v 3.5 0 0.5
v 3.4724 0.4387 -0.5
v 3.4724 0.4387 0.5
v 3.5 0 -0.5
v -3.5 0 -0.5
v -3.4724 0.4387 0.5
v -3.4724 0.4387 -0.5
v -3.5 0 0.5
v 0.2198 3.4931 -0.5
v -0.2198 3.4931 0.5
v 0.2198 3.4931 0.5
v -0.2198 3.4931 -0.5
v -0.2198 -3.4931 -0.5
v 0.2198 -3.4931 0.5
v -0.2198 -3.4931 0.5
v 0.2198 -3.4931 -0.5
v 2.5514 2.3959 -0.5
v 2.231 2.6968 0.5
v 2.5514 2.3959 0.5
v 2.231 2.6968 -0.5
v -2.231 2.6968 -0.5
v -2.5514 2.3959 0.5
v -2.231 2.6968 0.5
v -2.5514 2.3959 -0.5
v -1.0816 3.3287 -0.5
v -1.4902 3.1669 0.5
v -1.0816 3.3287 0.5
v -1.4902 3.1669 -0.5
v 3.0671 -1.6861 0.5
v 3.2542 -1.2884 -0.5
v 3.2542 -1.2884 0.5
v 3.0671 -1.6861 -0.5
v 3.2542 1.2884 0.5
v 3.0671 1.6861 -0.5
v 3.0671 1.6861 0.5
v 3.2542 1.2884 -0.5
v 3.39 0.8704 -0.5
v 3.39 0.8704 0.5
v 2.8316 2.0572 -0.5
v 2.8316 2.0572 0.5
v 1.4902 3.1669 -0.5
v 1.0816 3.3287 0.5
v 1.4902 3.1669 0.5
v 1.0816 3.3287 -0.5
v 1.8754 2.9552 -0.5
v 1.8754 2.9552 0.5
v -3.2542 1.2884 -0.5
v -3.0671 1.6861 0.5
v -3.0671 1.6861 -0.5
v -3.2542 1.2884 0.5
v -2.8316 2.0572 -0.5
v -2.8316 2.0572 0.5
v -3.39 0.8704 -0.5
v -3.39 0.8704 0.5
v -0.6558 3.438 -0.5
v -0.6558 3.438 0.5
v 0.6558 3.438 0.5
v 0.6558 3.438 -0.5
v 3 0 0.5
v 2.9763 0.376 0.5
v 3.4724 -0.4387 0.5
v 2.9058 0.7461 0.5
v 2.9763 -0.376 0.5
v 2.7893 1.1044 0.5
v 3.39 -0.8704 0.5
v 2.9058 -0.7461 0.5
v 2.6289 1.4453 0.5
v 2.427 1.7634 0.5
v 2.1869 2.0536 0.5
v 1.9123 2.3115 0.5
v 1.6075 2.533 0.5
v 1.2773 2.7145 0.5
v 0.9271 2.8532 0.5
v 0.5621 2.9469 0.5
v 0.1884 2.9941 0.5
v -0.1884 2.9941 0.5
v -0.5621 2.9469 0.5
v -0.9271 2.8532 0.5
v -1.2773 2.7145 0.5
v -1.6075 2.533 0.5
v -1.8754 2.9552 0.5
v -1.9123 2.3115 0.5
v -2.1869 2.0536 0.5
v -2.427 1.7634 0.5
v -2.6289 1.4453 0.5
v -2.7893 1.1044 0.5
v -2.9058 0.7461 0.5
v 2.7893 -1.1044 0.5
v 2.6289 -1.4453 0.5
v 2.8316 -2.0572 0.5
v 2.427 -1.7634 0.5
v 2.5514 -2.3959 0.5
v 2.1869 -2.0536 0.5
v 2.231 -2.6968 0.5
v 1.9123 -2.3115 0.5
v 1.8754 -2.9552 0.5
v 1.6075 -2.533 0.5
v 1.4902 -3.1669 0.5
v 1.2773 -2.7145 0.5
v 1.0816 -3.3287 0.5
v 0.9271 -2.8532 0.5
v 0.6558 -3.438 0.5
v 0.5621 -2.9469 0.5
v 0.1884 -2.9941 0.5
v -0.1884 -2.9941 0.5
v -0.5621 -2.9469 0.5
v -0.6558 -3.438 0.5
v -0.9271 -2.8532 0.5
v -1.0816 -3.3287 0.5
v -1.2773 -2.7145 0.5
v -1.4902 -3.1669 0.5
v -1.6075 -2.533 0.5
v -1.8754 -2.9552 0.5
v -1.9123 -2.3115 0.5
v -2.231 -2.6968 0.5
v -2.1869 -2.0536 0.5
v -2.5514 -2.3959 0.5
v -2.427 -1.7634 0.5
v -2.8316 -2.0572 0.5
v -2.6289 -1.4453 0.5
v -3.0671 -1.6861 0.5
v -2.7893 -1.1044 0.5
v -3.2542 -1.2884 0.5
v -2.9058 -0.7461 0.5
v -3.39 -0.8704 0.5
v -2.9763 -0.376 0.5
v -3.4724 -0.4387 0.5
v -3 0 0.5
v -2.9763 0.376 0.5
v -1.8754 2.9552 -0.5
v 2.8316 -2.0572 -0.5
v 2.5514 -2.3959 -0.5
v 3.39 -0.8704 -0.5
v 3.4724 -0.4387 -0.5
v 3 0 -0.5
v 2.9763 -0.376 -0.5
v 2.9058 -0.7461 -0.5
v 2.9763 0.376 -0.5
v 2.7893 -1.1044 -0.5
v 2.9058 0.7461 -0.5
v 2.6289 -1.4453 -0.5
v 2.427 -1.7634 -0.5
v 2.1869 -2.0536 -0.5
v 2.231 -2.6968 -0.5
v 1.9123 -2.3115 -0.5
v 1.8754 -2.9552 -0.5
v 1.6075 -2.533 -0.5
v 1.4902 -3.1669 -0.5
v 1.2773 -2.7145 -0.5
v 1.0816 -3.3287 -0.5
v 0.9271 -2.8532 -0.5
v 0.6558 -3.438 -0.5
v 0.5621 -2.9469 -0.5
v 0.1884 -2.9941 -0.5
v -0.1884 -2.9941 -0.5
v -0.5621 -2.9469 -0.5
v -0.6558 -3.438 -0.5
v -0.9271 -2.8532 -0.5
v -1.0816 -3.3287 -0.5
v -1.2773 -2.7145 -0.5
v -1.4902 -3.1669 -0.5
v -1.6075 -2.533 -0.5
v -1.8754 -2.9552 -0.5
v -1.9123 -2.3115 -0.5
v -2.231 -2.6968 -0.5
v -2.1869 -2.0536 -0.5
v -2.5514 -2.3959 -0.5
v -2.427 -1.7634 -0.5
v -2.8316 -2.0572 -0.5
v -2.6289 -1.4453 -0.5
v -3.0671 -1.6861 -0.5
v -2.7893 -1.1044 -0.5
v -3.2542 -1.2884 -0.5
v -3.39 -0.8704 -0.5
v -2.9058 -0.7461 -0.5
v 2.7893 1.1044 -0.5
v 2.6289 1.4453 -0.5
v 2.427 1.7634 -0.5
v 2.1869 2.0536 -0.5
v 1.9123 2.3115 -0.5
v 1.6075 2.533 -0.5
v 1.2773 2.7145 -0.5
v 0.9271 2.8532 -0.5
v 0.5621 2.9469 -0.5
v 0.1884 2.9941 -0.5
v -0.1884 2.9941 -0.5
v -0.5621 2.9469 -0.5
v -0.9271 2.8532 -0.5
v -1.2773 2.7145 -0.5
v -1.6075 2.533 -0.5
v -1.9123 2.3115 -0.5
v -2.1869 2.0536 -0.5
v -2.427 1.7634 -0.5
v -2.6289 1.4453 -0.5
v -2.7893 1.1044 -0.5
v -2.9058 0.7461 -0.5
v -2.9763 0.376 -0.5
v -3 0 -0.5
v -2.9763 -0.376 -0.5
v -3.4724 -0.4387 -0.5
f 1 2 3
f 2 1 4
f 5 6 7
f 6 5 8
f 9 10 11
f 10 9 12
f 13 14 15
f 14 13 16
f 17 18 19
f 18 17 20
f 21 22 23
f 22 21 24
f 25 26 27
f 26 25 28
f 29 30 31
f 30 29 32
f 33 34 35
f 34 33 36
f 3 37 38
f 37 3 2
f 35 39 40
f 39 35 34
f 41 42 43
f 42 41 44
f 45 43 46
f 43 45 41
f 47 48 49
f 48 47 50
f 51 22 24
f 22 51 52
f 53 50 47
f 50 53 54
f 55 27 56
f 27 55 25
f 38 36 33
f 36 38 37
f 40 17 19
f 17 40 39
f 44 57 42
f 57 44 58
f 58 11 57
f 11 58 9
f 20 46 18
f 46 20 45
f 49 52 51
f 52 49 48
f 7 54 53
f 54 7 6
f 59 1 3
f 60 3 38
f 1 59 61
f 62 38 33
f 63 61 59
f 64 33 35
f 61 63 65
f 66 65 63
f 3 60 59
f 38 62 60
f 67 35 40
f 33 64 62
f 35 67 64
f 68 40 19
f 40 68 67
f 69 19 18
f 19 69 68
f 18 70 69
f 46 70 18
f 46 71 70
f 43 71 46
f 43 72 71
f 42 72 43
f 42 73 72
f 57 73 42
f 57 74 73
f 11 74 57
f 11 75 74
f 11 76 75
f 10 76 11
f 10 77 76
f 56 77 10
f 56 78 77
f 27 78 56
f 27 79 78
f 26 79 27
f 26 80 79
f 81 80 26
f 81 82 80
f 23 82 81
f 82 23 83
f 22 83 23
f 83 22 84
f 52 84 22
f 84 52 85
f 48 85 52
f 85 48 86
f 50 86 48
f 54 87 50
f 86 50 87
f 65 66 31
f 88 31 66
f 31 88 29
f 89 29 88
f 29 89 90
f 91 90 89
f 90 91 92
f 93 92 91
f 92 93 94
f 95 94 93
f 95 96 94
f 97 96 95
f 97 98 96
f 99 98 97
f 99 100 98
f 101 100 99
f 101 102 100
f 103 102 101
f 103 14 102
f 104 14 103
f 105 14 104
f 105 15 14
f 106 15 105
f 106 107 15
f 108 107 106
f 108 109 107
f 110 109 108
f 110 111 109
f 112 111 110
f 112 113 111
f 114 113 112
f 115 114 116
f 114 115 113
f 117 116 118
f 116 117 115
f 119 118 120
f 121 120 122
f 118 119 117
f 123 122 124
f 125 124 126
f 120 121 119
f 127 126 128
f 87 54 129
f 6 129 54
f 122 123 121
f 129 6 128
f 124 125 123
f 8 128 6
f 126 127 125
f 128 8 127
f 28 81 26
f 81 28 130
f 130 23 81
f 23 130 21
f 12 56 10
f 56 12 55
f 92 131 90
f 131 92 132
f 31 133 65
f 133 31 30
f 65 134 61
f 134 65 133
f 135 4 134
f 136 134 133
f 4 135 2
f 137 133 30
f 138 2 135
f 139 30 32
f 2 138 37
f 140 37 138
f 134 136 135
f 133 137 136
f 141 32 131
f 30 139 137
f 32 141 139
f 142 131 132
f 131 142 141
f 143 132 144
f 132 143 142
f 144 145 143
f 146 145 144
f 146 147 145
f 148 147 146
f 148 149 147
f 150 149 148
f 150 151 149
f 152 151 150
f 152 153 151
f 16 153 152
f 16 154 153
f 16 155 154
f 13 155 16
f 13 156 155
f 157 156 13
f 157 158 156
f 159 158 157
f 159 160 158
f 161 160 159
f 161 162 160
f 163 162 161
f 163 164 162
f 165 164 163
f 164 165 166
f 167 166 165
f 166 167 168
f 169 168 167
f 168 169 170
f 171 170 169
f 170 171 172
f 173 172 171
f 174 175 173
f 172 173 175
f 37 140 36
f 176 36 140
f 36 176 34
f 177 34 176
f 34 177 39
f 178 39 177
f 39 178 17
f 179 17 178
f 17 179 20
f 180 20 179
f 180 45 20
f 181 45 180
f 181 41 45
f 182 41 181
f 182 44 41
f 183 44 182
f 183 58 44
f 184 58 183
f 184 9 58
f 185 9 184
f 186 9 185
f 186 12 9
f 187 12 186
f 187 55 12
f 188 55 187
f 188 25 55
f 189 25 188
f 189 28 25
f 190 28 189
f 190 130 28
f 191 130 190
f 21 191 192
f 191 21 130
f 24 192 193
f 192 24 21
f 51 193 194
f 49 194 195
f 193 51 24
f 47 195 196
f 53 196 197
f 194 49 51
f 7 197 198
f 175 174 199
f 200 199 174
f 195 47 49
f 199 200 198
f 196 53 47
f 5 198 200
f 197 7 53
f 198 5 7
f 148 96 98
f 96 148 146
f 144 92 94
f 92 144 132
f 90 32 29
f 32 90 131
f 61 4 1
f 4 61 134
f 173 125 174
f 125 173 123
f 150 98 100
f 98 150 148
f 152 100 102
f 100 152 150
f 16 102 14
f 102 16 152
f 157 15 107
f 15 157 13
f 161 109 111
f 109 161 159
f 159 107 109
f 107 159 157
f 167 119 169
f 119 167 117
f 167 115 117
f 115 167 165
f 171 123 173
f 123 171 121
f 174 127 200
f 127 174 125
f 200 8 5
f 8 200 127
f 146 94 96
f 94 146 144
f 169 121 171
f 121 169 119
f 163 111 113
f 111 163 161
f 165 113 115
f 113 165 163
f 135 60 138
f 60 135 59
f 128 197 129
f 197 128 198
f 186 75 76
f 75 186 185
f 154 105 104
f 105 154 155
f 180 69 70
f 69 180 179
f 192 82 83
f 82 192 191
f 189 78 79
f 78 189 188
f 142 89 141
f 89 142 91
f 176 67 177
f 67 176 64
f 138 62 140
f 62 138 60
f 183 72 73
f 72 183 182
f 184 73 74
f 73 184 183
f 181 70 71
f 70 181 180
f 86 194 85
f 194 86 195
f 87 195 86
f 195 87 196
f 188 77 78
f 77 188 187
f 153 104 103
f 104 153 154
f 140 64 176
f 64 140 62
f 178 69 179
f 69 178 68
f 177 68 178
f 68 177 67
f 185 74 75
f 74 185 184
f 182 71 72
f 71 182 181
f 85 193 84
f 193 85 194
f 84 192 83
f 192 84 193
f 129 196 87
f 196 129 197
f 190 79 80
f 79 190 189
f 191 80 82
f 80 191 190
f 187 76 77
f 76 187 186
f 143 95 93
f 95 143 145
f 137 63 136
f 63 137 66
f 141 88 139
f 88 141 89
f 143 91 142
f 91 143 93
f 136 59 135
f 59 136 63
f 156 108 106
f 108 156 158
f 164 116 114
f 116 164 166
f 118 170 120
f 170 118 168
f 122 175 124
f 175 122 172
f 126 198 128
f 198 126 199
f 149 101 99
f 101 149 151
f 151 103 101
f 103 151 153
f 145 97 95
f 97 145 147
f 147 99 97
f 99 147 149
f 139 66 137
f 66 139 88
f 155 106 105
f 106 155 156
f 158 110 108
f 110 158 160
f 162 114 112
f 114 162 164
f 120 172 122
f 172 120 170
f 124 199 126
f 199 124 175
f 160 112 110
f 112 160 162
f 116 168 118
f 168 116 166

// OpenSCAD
$fn = 50;


difference() {
	union() {
		translate(v = [0, 0, -0.5000000000]) {
			cylinder(h = 1, r = 3.5000000000);
		}
	}
	union() {
		translate(v = [0, 0, -100.0000000000]) {
			cylinder(h = 200, r = 3);
		}
	}
}
